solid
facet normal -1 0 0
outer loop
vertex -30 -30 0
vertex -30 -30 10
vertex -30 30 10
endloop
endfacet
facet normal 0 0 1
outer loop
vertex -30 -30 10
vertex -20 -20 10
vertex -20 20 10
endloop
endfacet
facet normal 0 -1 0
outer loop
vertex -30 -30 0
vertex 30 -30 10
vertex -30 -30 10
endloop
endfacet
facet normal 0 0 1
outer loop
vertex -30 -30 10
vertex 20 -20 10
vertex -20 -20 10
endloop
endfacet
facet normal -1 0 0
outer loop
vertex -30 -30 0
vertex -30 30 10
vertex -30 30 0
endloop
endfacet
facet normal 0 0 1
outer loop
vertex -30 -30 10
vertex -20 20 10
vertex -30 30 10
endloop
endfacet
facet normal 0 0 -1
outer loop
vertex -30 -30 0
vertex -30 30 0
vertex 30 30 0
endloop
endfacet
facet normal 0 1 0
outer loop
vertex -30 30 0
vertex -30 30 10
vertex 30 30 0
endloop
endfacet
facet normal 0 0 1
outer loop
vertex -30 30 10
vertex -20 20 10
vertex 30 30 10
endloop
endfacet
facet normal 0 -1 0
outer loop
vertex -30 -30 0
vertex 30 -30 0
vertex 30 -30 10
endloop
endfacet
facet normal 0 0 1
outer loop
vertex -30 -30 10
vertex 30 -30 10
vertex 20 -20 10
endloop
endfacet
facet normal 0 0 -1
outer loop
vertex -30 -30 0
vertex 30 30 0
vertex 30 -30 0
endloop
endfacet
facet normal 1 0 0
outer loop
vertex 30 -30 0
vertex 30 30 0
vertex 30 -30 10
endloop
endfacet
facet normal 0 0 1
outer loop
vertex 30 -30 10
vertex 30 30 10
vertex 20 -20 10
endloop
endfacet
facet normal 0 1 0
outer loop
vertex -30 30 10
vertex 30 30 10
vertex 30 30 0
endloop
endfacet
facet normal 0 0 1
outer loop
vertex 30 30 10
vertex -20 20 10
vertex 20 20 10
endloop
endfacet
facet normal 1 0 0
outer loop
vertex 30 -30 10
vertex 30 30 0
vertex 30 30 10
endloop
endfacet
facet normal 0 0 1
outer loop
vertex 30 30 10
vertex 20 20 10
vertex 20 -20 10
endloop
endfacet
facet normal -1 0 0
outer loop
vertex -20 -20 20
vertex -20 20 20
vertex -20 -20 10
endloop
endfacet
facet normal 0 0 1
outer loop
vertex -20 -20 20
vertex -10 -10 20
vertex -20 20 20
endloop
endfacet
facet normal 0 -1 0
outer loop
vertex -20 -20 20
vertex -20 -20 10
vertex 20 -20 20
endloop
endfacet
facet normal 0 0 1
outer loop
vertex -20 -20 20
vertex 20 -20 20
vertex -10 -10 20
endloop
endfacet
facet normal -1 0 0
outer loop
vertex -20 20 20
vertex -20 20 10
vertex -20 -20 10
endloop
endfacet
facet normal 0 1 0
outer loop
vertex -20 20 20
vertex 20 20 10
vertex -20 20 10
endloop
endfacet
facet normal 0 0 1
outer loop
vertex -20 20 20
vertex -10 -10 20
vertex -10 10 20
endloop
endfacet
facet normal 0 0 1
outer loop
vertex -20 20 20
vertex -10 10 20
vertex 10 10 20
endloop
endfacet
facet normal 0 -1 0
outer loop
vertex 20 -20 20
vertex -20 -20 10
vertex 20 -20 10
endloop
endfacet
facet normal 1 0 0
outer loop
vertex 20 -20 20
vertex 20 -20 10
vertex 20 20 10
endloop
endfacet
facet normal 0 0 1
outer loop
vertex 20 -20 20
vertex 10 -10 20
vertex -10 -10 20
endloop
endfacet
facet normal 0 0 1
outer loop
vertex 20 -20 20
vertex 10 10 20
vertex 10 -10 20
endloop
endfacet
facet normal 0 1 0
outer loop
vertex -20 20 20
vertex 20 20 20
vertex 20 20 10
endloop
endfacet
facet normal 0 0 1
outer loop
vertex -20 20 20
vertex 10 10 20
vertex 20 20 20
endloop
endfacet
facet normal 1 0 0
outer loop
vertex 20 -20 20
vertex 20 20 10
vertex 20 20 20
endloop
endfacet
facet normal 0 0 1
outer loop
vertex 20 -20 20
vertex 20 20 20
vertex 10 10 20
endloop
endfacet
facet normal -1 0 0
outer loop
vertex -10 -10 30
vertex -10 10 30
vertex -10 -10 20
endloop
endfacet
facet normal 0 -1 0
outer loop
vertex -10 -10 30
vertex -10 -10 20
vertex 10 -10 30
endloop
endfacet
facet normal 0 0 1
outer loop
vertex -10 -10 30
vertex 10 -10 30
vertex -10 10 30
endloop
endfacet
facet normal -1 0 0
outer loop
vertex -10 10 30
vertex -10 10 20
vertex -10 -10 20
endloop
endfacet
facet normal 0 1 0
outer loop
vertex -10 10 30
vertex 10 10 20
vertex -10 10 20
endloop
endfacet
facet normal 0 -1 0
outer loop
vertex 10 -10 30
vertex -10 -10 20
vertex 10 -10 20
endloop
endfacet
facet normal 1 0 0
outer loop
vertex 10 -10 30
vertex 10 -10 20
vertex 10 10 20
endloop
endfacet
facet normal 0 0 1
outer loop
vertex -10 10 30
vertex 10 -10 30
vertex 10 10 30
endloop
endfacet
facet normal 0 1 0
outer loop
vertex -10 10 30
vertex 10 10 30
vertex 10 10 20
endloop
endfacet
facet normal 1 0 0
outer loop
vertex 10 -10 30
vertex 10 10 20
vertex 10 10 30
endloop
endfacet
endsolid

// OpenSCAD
// 1段目 (底辺)
translate([-30, -30, 0])
    cube([60, 60, 10]);

// 2段目
translate([-20, -20, 10])
    cube([40, 40, 10]);

// 3段目 (頂上)
translate([-10, -10, 20])
    cube([20, 20, 10]);
